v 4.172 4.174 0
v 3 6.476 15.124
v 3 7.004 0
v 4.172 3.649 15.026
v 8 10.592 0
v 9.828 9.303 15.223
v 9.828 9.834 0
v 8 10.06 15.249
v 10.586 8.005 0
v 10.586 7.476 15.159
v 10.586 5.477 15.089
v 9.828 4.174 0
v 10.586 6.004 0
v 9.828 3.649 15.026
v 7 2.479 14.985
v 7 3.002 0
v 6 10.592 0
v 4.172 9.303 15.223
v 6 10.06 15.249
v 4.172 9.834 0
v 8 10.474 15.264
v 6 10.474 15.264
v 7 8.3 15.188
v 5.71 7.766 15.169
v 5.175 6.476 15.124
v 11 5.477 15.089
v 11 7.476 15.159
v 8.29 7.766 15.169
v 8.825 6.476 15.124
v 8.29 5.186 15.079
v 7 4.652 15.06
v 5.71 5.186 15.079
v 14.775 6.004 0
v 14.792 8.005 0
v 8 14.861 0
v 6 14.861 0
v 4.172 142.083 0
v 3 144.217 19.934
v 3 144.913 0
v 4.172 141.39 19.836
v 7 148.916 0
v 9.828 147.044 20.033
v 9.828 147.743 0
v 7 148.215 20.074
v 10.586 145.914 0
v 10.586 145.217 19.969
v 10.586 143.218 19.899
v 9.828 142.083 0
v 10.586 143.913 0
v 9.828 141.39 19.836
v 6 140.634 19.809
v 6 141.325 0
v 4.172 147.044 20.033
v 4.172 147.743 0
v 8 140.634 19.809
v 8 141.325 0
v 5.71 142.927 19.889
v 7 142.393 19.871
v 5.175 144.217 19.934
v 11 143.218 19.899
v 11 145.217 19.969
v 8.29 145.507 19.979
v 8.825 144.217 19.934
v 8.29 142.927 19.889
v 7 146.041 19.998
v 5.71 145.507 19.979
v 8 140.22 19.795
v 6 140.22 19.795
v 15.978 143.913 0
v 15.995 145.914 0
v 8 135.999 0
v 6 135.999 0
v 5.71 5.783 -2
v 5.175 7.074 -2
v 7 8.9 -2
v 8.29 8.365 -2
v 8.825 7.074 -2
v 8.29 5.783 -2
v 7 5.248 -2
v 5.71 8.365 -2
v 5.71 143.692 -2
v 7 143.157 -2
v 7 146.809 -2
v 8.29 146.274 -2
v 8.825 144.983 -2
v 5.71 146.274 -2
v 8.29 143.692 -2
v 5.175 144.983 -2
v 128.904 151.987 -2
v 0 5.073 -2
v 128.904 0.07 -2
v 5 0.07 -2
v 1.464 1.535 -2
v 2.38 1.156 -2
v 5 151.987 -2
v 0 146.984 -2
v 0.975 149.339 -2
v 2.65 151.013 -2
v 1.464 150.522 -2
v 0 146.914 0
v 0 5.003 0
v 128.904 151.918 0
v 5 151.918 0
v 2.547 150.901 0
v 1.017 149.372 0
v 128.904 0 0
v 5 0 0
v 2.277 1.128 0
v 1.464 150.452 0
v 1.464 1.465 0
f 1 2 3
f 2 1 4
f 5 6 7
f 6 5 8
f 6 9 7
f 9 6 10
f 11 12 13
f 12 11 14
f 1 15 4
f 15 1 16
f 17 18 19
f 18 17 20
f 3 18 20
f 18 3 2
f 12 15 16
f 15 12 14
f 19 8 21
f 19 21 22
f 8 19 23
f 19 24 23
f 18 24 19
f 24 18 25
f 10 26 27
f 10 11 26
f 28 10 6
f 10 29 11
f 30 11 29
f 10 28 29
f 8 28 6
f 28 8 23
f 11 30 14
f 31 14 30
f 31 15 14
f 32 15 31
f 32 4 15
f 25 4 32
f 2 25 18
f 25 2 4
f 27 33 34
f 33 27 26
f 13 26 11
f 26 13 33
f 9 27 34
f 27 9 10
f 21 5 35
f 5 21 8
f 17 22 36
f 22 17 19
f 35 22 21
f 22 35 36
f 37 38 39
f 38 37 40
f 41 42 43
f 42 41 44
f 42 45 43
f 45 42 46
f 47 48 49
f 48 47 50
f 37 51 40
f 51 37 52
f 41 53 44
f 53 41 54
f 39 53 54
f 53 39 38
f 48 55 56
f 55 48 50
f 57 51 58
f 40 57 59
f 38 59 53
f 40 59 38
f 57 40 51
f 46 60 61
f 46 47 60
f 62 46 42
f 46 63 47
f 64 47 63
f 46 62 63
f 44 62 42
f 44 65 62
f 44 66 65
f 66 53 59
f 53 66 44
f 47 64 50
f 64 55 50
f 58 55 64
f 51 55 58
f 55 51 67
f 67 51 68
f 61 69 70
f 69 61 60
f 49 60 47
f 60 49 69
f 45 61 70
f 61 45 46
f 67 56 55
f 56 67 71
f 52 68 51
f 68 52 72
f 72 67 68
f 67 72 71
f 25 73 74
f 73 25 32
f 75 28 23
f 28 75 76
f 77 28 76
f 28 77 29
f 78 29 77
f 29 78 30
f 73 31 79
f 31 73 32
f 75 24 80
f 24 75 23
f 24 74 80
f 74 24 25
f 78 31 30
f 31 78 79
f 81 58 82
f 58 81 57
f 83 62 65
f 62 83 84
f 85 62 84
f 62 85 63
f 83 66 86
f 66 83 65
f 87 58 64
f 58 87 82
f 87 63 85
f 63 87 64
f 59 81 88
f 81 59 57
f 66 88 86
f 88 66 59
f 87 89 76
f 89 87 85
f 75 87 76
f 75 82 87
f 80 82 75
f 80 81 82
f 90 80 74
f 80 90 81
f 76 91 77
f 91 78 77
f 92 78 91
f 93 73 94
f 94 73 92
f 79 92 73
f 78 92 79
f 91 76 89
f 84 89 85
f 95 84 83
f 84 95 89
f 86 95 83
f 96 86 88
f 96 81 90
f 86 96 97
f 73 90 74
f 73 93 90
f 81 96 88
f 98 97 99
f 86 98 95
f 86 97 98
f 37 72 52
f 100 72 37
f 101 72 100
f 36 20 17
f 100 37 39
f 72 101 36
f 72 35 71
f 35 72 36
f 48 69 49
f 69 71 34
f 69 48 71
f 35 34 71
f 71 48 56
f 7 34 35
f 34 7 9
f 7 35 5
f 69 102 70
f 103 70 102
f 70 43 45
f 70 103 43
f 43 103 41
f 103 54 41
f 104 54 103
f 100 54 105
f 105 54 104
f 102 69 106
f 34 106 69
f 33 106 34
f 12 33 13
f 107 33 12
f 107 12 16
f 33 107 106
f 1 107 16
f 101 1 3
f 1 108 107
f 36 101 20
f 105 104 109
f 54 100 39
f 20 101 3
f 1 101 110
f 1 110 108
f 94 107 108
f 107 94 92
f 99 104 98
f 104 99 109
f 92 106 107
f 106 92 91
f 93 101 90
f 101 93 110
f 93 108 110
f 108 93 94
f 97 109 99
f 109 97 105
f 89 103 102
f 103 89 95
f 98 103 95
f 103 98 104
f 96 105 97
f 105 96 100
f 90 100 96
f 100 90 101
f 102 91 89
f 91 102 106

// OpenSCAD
// Generated by SolidPython 1.1.3 on 2025-01-19 16:43:05
$fn = 8;


difference() {
	intersection() {
		union() {
			difference() {
				rotate(a = 2, v = [1, 0, 0]) {
					translate(v = [0, 0, 15.4445000000]) {
						translate(v = [0, 133.8250000000, 0]) {
							translate(v = [10, 0, 0]) {
								difference() {
									translate(v = [-3, 0, 0]) {
										translate(v = [0, -126.8250000000, 0]) {
											translate(v = [0, 0, -68.5555000000]) {
												union() {
													translate(v = [0, 0, 0]) {
														translate(v = [0, 0, 0]) {
															union() {
																cylinder(h = 68, r = 4.0000000000);
																rotate(a = 90, v = [1, 0, 0]) {
																	linear_extrude(center = true, height = 2) {
																		polygon(paths = [[0, 1, 2, 3]], points = [[0, 0], [0, 68], [4.0000000000, 68], [21.0000000000, 0]]);
																	}
																}
																rotate(a = 90, v = [0, 0, 1]) {
																	rotate(a = 90, v = [1, 0, 0]) {
																		linear_extrude(center = true, height = 2) {
																			polygon(paths = [[0, 1, 2, 3]], points = [[0, 0], [0, 68], [4.0000000000, 68], [21.0000000000, 0]]);
																		}
																	}
																}
															}
														}
													}
													translate(v = [0, 0, 0]) {
														translate(v = [0, 137.8250000000, 0]) {
															union() {
																cylinder(h = 68, r = 4.0000000000);
																rotate(a = 90, v = [1, 0, 0]) {
																	linear_extrude(center = true, height = 2) {
																		polygon(paths = [[0, 1, 2, 3]], points = [[0, 0], [0, 68], [4.0000000000, 68], [21.0000000000, 0]]);
																	}
																}
																rotate(a = 270, v = [0, 0, 1]) {
																	rotate(a = 90, v = [1, 0, 0]) {
																		linear_extrude(center = true, height = 2) {
																			polygon(paths = [[0, 1, 2, 3]], points = [[0, 0], [0, 68], [4.0000000000, 68], [21.0000000000, 0]]);
																		}
																	}
																}
															}
														}
													}
													translate(v = [372.7125000000, 0, 0]) {
														translate(v = [0, 137.8250000000, 0]) {
															union() {
																cylinder(h = 68, r = 4.0000000000);
																rotate(a = 180, v = [0, 0, 1]) {
																	rotate(a = 90, v = [1, 0, 0]) {
																		linear_extrude(center = true, height = 2) {
																			polygon(paths = [[0, 1, 2, 3]], points = [[0, 0], [0, 68], [4.0000000000, 68], [21.0000000000, 0]]);
																		}
																	}
																}
																rotate(a = 270, v = [0, 0, 1]) {
																	rotate(a = 90, v = [1, 0, 0]) {
																		linear_extrude(center = true, height = 2) {
																			polygon(paths = [[0, 1, 2, 3]], points = [[0, 0], [0, 68], [4.0000000000, 68], [21.0000000000, 0]]);
																		}
																	}
																}
															}
														}
													}
													translate(v = [372.7125000000, 0, 0]) {
														translate(v = [0, 0, 0]) {
															union() {
																cylinder(h = 68, r = 4.0000000000);
																rotate(a = 180, v = [0, 0, 1]) {
																	rotate(a = 90, v = [1, 0, 0]) {
																		linear_extrude(center = true, height = 2) {
																			polygon(paths = [[0, 1, 2, 3]], points = [[0, 0], [0, 68], [4.0000000000, 68], [21.0000000000, 0]]);
																		}
																	}
																}
																rotate(a = 90, v = [0, 0, 1]) {
																	rotate(a = 90, v = [1, 0, 0]) {
																		linear_extrude(center = true, height = 2) {
																			polygon(paths = [[0, 1, 2, 3]], points = [[0, 0], [0, 68], [4.0000000000, 68], [21.0000000000, 0]]);
																		}
																	}
																}
															}
														}
													}
													translate(v = [186.3562500000, 0, 0]) {
														translate(v = [0, 137.8250000000, 0]) {
															union() {
																cylinder(h = 68, r = 4.0000000000);
																rotate(a = 90, v = [1, 0, 0]) {
																	linear_extrude(center = true, height = 2) {
																		polygon(paths = [[0, 1, 2, 3]], points = [[0, 0], [0, 68], [4.0000000000, 68], [21.0000000000, 0]]);
																	}
																}
																rotate(a = 180, v = [0, 0, 1]) {
																	rotate(a = 90, v = [1, 0, 0]) {
																		linear_extrude(center = true, height = 2) {
																			polygon(paths = [[0, 1, 2, 3]], points = [[0, 0], [0, 68], [4.0000000000, 68], [21.0000000000, 0]]);
																		}
																	}
																}
															}
														}
													}
													translate(v = [186.3562500000, 0, 0]) {
														translate(v = [0, 0, 0]) {
															union() {
																cylinder(h = 68, r = 4.0000000000);
																rotate(a = 90, v = [1, 0, 0]) {
																	linear_extrude(center = true, height = 2) {
																		polygon(paths = [[0, 1, 2, 3]], points = [[0, 0], [0, 68], [4.0000000000, 68], [21.0000000000, 0]]);
																	}
																}
																rotate(a = 180, v = [0, 0, 1]) {
																	rotate(a = 90, v = [1, 0, 0]) {
																		linear_extrude(center = true, height = 2) {
																			polygon(paths = [[0, 1, 2, 3]], points = [[0, 0], [0, 68], [4.0000000000, 68], [21.0000000000, 0]]);
																		}
																	}
																}
															}
														}
													}
												}
											}
										}
									}
									translate(v = [-3, 0, 0]) {
										translate(v = [0, -126.8250000000, 0]) {
											union() {
												translate(v = [0, 0, 0]) {
													translate(v = [0, 0, 0]) {
														cylinder(center = true, h = 272, r = 1.8250000000);
													}
												}
												translate(v = [0, 0, 0]) {
													translate(v = [0, 137.8250000000, 0]) {
														cylinder(center = true, h = 272, r = 1.8250000000);
													}
												}
												translate(v = [372.7125000000, 0, 0]) {
													translate(v = [0, 137.8250000000, 0]) {
														cylinder(center = true, h = 272, r = 1.8250000000);
													}
												}
												translate(v = [372.7125000000, 0, 0]) {
													translate(v = [0, 0, 0]) {
														cylinder(center = true, h = 272, r = 1.8250000000);
													}
												}
												translate(v = [186.3562500000, 0, 0]) {
													translate(v = [0, 137.8250000000, 0]) {
														cylinder(center = true, h = 272, r = 1.8250000000);
													}
												}
												translate(v = [186.3562500000, 0, 0]) {
													translate(v = [0, 0, 0]) {
														cylinder(center = true, h = 272, r = 1.8250000000);
													}
												}
											}
										}
									}
								}
							}
						}
					}
				}
				translate(v = [0, 0, -2]) {
					translate(v = [0, 0, -100]) {
						translate(v = [0, -75.9125000000, 0]) {
							translate(v = [-193.3562500000, 0, 0]) {
								cube(size = [773.4250000000, 303.6500000000, 100]);
							}
						}
					}
				}
			}
			intersection() {
				translate(v = [0, 0, -2]) {
					translate(v = [-193.3562500000, 0, 0]) {
						translate(v = [0, -75.9125000000, 0]) {
							cube(size = [773.4250000000, 303.6500000000, 2]);
						}
					}
				}
				rotate(a = 2, v = [1, 0, 0]) {
					translate(v = [0, 0, 15.4445000000]) {
						translate(v = [0, 133.8250000000, 0]) {
							translate(v = [10, 0, 0]) {
								translate(v = [0, 0, -34.0000000000]) {
									translate(v = [183.3562500000, 0, 0]) {
										translate(v = [0, -57.9125000000, 0]) {
											minkowski() {
												cube(center = true, size = [376.7125000000, 141.8250000000, 68]);
												cylinder(center = true, h = 0.5555000000, r = 5);
											}
										}
									}
								}
							}
						}
					}
				}
			}
		}
		translate(v = [0, 0, 15.4445000000]) {
			translate(v = [0, 133.8250000000, 0]) {
				translate(v = [10, 0, 0]) {
					translate(v = [-10.0000000000, 0, 0]) {
						translate(v = [0, -227.7375000000, 0]) {
							translate(v = [0, 0, -34.0000000000]) {
								cube(size = [128.9041666667, 303.6500000000, 136]);
							}
						}
					}
				}
			}
		}
	}
	rotate(a = 2, v = [1, 0, 0]) {
		translate(v = [0, 0, 15.4445000000]) {
			translate(v = [0, 133.8250000000, 0]) {
				translate(v = [10, 0, 0]) {
					translate(v = [-3, 0, 0]) {
						translate(v = [0, -126.8250000000, 0]) {
							union() {
								translate(v = [0, 0, 0]) {
									translate(v = [0, 0, 0]) {
										cylinder(center = true, h = 272, r = 1.8250000000);
									}
								}
								translate(v = [0, 0, 0]) {
									translate(v = [0, 137.8250000000, 0]) {
										cylinder(center = true, h = 272, r = 1.8250000000);
									}
								}
								translate(v = [372.7125000000, 0, 0]) {
									translate(v = [0, 137.8250000000, 0]) {
										cylinder(center = true, h = 272, r = 1.8250000000);
									}
								}
								translate(v = [372.7125000000, 0, 0]) {
									translate(v = [0, 0, 0]) {
										cylinder(center = true, h = 272, r = 1.8250000000);
									}
								}
								translate(v = [186.3562500000, 0, 0]) {
									translate(v = [0, 137.8250000000, 0]) {
										cylinder(center = true, h = 272, r = 1.8250000000);
									}
								}
								translate(v = [186.3562500000, 0, 0]) {
									translate(v = [0, 0, 0]) {
										cylinder(center = true, h = 272, r = 1.8250000000);
									}
								}
							}
						}
					}
				}
			}
		}
	}
}
/***********************************************
*********      SolidPython code:      **********
************************************************
 
#!/usr/bin/env python3

import argparse
from asyncio import subprocess
import json
# import math
import re
import logging
import os
# import os.path
import subprocess
# import time

from solid import *
from solid.utils import *

from parameters import Parameters
from keyboard import Keyboard
from cable import Cable

# Set logger level variables
console_logging_level = logging.WARN
file_logging_level = logging.DEBUG


# Get root logger and set main logger level to DEBUG
logger = logging.getLogger()
logger.setLevel(logging.DEBUG)


# Create formatters
console_formatter = logging.Formatter('%(name)s %(levelname)s: %(funcName)s: [%(lineno)d]: %(message)s')
file_formatter = logging.Formatter('%(asctime)s %(levelname)s %(name)s: %(funcName)s: [%(lineno)d]: %(message)s')

# Create console handler and set level to info
console_handler = logging.StreamHandler()
console_handler.setLevel(console_logging_level)

# Add formatter to console_handler
console_handler.setFormatter(console_formatter)

# Add console handler to logger
logger.addHandler(console_handler)

# Get file info that will be used to creat log file
script_location = Path(os.path.dirname(os.path.realpath(__file__)))
log_file_name = 'generator.log'
log_file_path = script_location / log_file_name

# Create file handler and set level to info
file_handler = logging.FileHandler(log_file_path, mode = 'w')
file_handler.setLevel(file_logging_level)

# Add formatter to file_handler
file_handler.setFormatter(file_formatter)

# Add file handler to logger
logger.addHandler(file_handler)


# Helper for parser to wnsure filename argument has to correct extension
def CheckExt(choices):
    class Act(argparse.Action):
        def __call__(self,parser,namespace,fname,option_string=None):
            ext = os.path.splitext(fname)[1][1:]
            if ext not in choices:
                option_string = '({})'.format(option_string) if option_string else ''
                parser.error("file doesn't end with one of {}{}".format(choices,option_string))
            else:
                setattr(namespace,self.dest,fname)

    return Act



def main():

    parser = argparse.ArgumentParser(description='Build custom keyboard SCAD file using keyboard layout editor format')
    parser.add_argument('-i', '--input-file', metavar = 'layout_json_file_name.json', help = 'A path to a keyboard layout editor json file', required = True, action=CheckExt({'json'}))
    # parser.add_argument('-o', '--output-folder', metavar = 'scad', help = 'A path to a folder to store the generated open scad file')
    parser.add_argument('-p', '--parameter-file', metavar = 'parameters.json', help = 'A JSON file containing paramters for the object buing made', default = None, action=CheckExt({'json'}))
    parser.add_argument('-s', '--section', metavar = 'section_num', help = 'The number of the section that should be built', type = int, default = -1)
    parser.add_argument('-a', '--all-sections', help = 'Output all the parts for all possible sections in separate files', default = False, action = 'store_true')
    parser.add_argument('-e', '--exploded', help = 'Create test file with each section shown as an exploded view', default = False, action = 'store_true')
    parser.add_argument('-f', '--fragments', metavar = 'num_fragments', help = 'The number of fragments to be used when creating curves', type = int, default = 8)
    parser.add_argument('-r', '--render', help = 'Render an STL from the generated scad file', default = False, action = 'store_true')
    parser.add_argument('--switch-type-in-filename', help = 'Add the switch type name and stabilizer type name to the filname', default = False, action = 'store_true')

    # Parse command line arguments
    args = parser.parse_args()
    logger.debug(vars(args))

    # Create Path object from input file argument
    input_file_path = Path(args.input_file)

    # Get base folder path
    base_path = input_file_path.parent

    # Get input file name onle
    file_name_only = input_file_path.name
    
    # Get layout name from file name
    layout_name = input_file_path.stem

    # Generate output scad and stl output folder paths
    output_base_folder = base_path / layout_name
    scad_folder_path = output_base_folder / 'scad'
    stl_folder_path = output_base_folder / 'stl'

    # Ensure all outpur folders exists
    if output_base_folder.is_dir() == False:
        output_base_folder.mkdir()

    if scad_folder_path.is_dir() == False:
        scad_folder_path.mkdir()

    if stl_folder_path.is_dir() == False:
        stl_folder_path.mkdir()

    logger.debug('layout_name: %s', str(layout_name))
    logger.debug('base_path: %s', str(base_path))
    logger.debug('file_name_only: %s', str(file_name_only))
    
    # define output file extensions
    scad_postfix = '.scad'
    stl_postfix  = '.stl'

    # Set fragments per circle
    FRAGMENTS = args.fragments
    logger.debug('\tFragments: %d', FRAGMENTS)

    # Pattern and Replacement strings to be used when trying to turn keyboard-layout-editor raw output into valid JSON
    json_key_pattern = '([{,])([xywha1]+):'
    json_key_replace = '\\1"\\2":'

    # Open JSON layout file
    logger.debug('Open layout file %s', input_file_path)
    try:
        # Try with utf-8 encoding specified
        f = open(input_file_path, encoding="utf-8")
    except:
        # Failed to open
        logger.info('Failed to open layout file with utf-8 encoding specified. Try opening without specifying an encoding')
        try:
            # Try opening with no encoding spcificed
            f = open(input_file_path)
        except:
            logger.error('Failed to open layout file both spefifying utf-8 andcoding and not specifying any encodeing. Exiting')
            exit(1)

    logger.debug('Read layout JSON string from file %s', input_file_path)
    try:
        keyboard_layout = f.read()
    except UnicodeDecodeError:
        logger.error('Unable to decode layout file. Please provide utf-8 encoded files')
        exit(-1)

    keyboard_layout_dict = None

    # Load keyboard layout dictionary
    logger.debug('Parse layout file JSON string')
    try:
        # Attempt to parse to provided JSON string
        keyboard_layout_dict = json.loads(keyboard_layout)
        logger.debug('Valid Json Parsed')
    except:
        # Failed to parse the JSON test.
        # This most likely means that the keybaord-layout-editor raw output was provided
        # Attempt to modify that string to make it valid JSON
        keyboard_layout = '[%s]' % (keyboard_layout)
        keyboard_layout = re.sub(json_key_pattern, json_key_replace, keyboard_layout)
        try:
            keyboard_layout_dict = json.loads(keyboard_layout)
            logger.info('Initial layout Json Invalid. Json modified and parsed')
        except:
            logger.error('Failed to parse layout json after attempt at correction.')
            raise

    logger.debug('keyboard_layout_dict: %s', str(keyboard_layout_dict))


    # Read parameter file
    parameter_dict = None
    if args.parameter_file is not None:
        # Open JSON parameter file
        logger.debug('Open parameter file %s', args.parameter_file)
        try:
            # Try with utf-8 encoding specified
            f = open(args.parameter_file, encoding="utf-8")
        except:
            # Failed to open
            logger.info('Failed to open parameter file with utf-8 encoding specified. Try opening without specifying an encoding')
            try:
                # Try opening with no encoding spcificed
                f = open(args.parameter_fil)
            except:
                logger.error('Failed to open parameter file both spefifying utf-8 andcoding and not specifying any encodeing. Exiting')
                exit(1)
        

        logger.debug('Read JSON string from parameter file %s', args.parameter_file)
        try:
             parameter_file_text = f.read()
        except UnicodeDecodeError:
            logger.error('Unable to decode parameter file. Please provide utf-8 encoded files')
            exit(-1)
       
        logger.debug('Parse parameter JSON string')
        try:
            parameter_dict = json.loads(parameter_file_text)
            logger.debug('Valid Json Parsed')
        except:
            logger.error('Failed to parse parameter JSON file.')
            raise

        logger.debug('parameter_dict: %s', str(parameter_dict))


    # Set parameters from imput file
    parameters = Parameters(parameter_dict)
    
    # Create Keyboard instance
    keyboard = Keyboard(parameters)

    # Process the keyboard layout object
    keyboard.process_keyboard_layout(keyboard_layout_dict)
    keyboard.process_custom_shapes()

    logger.debug('kerf: %f', keyboard.kerf)

    # Dictionary of SolidPython solid objects that need to be rendered to SCAD and to STL if desired
    solid_object_dict = {}

    # Create objects for each of the generated sections
    if args.all_sections == True:
        # Iterate over all sections generated and add all sections to solid_object_dict
        for section in range(keyboard.get_top_section_count()):
            # Set current section for generator
            keyboard.set_section(section)

            # Create dict for section
            solid_object_dict[section] = {}

            # Add top assembly, plate, and all assembly to section dict
            solid_object_dict[section]['top'] = keyboard.get_assembly(top = True)
            solid_object_dict[section]['all'] = keyboard.get_assembly(all = True)
            solid_object_dict[section]['plate'] = keyboard.get_assembly(plate_only = True)

            # If there is a bottom section for the current section add it to section dict
            if section < keyboard.get_bottom_section_count():
                solid_object_dict[section]['bottom'] = keyboard.get_assembly(bottom = True)
            
    # Create exploded object
    elif args.exploded == True:
        solid_object_dict[-1] = {}
        solid_object_dict[-1]['top'] = union()
        solid_object_dict[-1]['plate'] = union()
        solid_object_dict[-1]['bottom'] = union()
        for section in range(keyboard.get_top_section_count()):
            keyboard.set_section(section)
            solid_object_dict[-1]['top'] += up(5 * section) ( right(10 * section) ( keyboard.get_assembly(top = True) ) )
            solid_object_dict[-1]['plate'] += up(5 * section) ( right(10 * section) ( keyboard.get_assembly(plate_only = True) ) )
            if section < keyboard.get_bottom_section_count():
                solid_object_dict[-1]['bottom'] += up(5 * section) ( right(10 * section) ( keyboard.get_assembly(bottom = True) ) )
    

    # Create objects for a specified section
    elif args.section > -1:
        # Set desired section to create
        keyboard.set_section(args.section)

        # Create dict for section
        solid_object_dict[args.section] = {}

        # Add top assembly, plate, and all assembly to section dict
        solid_object_dict[args.section]['top'] = keyboard.get_assembly(top = True)
        solid_object_dict[args.section]['all'] = keyboard.get_assembly(all = True)
        solid_object_dict[args.section]['plate'] = keyboard.get_assembly(plate_only = True)

        # If there is a bottom section for the current section add it to section dict
        if args.section < keyboard.get_bottom_section_count():
            solid_object_dict[args.section]['bottom'] = keyboard.get_assembly(bottom = True)

    # Create an objects that are not split into sections. No other options were specified
    else:
        logger.debug('Create whole object. No other options specified')
        solid_object_dict['all'] = {}
        solid_object_dict['all']['top'] = keyboard.get_assembly(top = True)
        solid_object_dict['all']['bottom'] = keyboard.get_assembly(bottom = True)
        solid_object_dict['all']['all'] = keyboard.get_assembly(all = True)
        solid_object_dict['all']['plate'] = keyboard.get_assembly(plate_only = True)
    
    # Add global items that are not dependant on the sctions or parts of the item to build
    solid_object_dict['global'] = {}

    # Generate a strain relief piece for the cable hole
    if parameters.cable_hole == True:
        cable = Cable(parameters)
        solid_object_dict['global']['cable_holder_main'] = cable.holder_main()
        solid_object_dict['global']['cable_holder_clamp'] = cable.holder_clamp()
        solid_object_dict['global']['cable_holder_all'] = cable.holder_all()

    print(parameters)
    print('Case Height: %f, Case Width: %f\n' % (parameters.real_case_height, parameters.real_case_width))
    
    logger.info('Case Height: %f, Case Width: %f', parameters.real_case_height, parameters.real_case_width)
    logger.info('Sections In Top: %d', keyboard.get_top_section_count())
    logger.info('Sections In Bottom: %d', keyboard.get_bottom_section_count())


    ############################################################
    # Render SCAD and STL files
    ############################################################
    subprocess_dict = {}

    switch_type_for_filename = ''
    stab_type_for_filename = ''

    for section in solid_object_dict.keys():

        if args.switch_type_in_filename == True:
            switch_type_for_filename = '_' + parameters.switch_type
            stab_type_for_filename = '_' + parameters.stabilizer_type

        section_postfix = ''

        # Creating global items that have no relaton to switch type
        if isinstance(section, str) and section == 'global':
            switch_type_for_filename = ''
            stab_type_for_filename = ''
        
        # If the current object dict section is an int greater than -1 add the section number to the filename
        if isinstance(section, int) and section > -1:
            section_postfix = '_section_%d' % (section)
        
        if args.exploded == True:
            section_postfix = '_exploded'

        for part_name in solid_object_dict[section].keys():
            part_name_formatted = '_' + part_name

            scad_file_name = scad_folder_path / (layout_name + section_postfix + part_name_formatted + switch_type_for_filename + stab_type_for_filename + scad_postfix)
            stl_file_name = stl_folder_path / (layout_name + section_postfix + part_name_formatted + switch_type_for_filename + stab_type_for_filename + stl_postfix)

            if solid_object_dict[section][part_name] is not None:
                logger.info('Generate scad file with name %s', scad_file_name)
                # Generate SCAD file from assembly
                scad_render_to_file(solid_object_dict[section][part_name], scad_file_name, file_header=f'$fn = {FRAGMENTS};')
                print('Generated scad file with name', scad_file_name)
                
                # Render STL if option is chosen
                if args.render:
                    logger.debug('Render STL from SCAD')
                    logger.info('Generate stl file with name %s from %s', stl_file_name, scad_file_name)

                    openscad_command_list = ['openscad', '-o', '%s' % (stl_file_name), '%s' % (scad_file_name)]
                    subprocess_dict[stl_file_name] = subprocess.Popen(openscad_command_list)
    
    
    ################################################################
    #  Wait for render processes to complete
    ################################################################
    if args.render:
        logger.debug(subprocess_dict)
        running = True
        while running == True:
            running = False
            for stl_file_name in subprocess_dict.keys():
                p = subprocess_dict[stl_file_name]
                if p is not None:
                    # running = True
                    rcode = None
                    try:
                        rcode = p.wait(.1)
                    except subprocess.TimeoutExpired as err:
                        running = True
                    if rcode is not None:
                        logger.info('Render Complete: file: %s', stl_file_name)
                        print('Render Complete: file:', stl_file_name)
                        subprocess_dict[stl_file_name] = None
            # time.sleep(1)



    logger.info('Generation Complete')

if __name__ == "__main__":
    main()
 
 
************************************************/
